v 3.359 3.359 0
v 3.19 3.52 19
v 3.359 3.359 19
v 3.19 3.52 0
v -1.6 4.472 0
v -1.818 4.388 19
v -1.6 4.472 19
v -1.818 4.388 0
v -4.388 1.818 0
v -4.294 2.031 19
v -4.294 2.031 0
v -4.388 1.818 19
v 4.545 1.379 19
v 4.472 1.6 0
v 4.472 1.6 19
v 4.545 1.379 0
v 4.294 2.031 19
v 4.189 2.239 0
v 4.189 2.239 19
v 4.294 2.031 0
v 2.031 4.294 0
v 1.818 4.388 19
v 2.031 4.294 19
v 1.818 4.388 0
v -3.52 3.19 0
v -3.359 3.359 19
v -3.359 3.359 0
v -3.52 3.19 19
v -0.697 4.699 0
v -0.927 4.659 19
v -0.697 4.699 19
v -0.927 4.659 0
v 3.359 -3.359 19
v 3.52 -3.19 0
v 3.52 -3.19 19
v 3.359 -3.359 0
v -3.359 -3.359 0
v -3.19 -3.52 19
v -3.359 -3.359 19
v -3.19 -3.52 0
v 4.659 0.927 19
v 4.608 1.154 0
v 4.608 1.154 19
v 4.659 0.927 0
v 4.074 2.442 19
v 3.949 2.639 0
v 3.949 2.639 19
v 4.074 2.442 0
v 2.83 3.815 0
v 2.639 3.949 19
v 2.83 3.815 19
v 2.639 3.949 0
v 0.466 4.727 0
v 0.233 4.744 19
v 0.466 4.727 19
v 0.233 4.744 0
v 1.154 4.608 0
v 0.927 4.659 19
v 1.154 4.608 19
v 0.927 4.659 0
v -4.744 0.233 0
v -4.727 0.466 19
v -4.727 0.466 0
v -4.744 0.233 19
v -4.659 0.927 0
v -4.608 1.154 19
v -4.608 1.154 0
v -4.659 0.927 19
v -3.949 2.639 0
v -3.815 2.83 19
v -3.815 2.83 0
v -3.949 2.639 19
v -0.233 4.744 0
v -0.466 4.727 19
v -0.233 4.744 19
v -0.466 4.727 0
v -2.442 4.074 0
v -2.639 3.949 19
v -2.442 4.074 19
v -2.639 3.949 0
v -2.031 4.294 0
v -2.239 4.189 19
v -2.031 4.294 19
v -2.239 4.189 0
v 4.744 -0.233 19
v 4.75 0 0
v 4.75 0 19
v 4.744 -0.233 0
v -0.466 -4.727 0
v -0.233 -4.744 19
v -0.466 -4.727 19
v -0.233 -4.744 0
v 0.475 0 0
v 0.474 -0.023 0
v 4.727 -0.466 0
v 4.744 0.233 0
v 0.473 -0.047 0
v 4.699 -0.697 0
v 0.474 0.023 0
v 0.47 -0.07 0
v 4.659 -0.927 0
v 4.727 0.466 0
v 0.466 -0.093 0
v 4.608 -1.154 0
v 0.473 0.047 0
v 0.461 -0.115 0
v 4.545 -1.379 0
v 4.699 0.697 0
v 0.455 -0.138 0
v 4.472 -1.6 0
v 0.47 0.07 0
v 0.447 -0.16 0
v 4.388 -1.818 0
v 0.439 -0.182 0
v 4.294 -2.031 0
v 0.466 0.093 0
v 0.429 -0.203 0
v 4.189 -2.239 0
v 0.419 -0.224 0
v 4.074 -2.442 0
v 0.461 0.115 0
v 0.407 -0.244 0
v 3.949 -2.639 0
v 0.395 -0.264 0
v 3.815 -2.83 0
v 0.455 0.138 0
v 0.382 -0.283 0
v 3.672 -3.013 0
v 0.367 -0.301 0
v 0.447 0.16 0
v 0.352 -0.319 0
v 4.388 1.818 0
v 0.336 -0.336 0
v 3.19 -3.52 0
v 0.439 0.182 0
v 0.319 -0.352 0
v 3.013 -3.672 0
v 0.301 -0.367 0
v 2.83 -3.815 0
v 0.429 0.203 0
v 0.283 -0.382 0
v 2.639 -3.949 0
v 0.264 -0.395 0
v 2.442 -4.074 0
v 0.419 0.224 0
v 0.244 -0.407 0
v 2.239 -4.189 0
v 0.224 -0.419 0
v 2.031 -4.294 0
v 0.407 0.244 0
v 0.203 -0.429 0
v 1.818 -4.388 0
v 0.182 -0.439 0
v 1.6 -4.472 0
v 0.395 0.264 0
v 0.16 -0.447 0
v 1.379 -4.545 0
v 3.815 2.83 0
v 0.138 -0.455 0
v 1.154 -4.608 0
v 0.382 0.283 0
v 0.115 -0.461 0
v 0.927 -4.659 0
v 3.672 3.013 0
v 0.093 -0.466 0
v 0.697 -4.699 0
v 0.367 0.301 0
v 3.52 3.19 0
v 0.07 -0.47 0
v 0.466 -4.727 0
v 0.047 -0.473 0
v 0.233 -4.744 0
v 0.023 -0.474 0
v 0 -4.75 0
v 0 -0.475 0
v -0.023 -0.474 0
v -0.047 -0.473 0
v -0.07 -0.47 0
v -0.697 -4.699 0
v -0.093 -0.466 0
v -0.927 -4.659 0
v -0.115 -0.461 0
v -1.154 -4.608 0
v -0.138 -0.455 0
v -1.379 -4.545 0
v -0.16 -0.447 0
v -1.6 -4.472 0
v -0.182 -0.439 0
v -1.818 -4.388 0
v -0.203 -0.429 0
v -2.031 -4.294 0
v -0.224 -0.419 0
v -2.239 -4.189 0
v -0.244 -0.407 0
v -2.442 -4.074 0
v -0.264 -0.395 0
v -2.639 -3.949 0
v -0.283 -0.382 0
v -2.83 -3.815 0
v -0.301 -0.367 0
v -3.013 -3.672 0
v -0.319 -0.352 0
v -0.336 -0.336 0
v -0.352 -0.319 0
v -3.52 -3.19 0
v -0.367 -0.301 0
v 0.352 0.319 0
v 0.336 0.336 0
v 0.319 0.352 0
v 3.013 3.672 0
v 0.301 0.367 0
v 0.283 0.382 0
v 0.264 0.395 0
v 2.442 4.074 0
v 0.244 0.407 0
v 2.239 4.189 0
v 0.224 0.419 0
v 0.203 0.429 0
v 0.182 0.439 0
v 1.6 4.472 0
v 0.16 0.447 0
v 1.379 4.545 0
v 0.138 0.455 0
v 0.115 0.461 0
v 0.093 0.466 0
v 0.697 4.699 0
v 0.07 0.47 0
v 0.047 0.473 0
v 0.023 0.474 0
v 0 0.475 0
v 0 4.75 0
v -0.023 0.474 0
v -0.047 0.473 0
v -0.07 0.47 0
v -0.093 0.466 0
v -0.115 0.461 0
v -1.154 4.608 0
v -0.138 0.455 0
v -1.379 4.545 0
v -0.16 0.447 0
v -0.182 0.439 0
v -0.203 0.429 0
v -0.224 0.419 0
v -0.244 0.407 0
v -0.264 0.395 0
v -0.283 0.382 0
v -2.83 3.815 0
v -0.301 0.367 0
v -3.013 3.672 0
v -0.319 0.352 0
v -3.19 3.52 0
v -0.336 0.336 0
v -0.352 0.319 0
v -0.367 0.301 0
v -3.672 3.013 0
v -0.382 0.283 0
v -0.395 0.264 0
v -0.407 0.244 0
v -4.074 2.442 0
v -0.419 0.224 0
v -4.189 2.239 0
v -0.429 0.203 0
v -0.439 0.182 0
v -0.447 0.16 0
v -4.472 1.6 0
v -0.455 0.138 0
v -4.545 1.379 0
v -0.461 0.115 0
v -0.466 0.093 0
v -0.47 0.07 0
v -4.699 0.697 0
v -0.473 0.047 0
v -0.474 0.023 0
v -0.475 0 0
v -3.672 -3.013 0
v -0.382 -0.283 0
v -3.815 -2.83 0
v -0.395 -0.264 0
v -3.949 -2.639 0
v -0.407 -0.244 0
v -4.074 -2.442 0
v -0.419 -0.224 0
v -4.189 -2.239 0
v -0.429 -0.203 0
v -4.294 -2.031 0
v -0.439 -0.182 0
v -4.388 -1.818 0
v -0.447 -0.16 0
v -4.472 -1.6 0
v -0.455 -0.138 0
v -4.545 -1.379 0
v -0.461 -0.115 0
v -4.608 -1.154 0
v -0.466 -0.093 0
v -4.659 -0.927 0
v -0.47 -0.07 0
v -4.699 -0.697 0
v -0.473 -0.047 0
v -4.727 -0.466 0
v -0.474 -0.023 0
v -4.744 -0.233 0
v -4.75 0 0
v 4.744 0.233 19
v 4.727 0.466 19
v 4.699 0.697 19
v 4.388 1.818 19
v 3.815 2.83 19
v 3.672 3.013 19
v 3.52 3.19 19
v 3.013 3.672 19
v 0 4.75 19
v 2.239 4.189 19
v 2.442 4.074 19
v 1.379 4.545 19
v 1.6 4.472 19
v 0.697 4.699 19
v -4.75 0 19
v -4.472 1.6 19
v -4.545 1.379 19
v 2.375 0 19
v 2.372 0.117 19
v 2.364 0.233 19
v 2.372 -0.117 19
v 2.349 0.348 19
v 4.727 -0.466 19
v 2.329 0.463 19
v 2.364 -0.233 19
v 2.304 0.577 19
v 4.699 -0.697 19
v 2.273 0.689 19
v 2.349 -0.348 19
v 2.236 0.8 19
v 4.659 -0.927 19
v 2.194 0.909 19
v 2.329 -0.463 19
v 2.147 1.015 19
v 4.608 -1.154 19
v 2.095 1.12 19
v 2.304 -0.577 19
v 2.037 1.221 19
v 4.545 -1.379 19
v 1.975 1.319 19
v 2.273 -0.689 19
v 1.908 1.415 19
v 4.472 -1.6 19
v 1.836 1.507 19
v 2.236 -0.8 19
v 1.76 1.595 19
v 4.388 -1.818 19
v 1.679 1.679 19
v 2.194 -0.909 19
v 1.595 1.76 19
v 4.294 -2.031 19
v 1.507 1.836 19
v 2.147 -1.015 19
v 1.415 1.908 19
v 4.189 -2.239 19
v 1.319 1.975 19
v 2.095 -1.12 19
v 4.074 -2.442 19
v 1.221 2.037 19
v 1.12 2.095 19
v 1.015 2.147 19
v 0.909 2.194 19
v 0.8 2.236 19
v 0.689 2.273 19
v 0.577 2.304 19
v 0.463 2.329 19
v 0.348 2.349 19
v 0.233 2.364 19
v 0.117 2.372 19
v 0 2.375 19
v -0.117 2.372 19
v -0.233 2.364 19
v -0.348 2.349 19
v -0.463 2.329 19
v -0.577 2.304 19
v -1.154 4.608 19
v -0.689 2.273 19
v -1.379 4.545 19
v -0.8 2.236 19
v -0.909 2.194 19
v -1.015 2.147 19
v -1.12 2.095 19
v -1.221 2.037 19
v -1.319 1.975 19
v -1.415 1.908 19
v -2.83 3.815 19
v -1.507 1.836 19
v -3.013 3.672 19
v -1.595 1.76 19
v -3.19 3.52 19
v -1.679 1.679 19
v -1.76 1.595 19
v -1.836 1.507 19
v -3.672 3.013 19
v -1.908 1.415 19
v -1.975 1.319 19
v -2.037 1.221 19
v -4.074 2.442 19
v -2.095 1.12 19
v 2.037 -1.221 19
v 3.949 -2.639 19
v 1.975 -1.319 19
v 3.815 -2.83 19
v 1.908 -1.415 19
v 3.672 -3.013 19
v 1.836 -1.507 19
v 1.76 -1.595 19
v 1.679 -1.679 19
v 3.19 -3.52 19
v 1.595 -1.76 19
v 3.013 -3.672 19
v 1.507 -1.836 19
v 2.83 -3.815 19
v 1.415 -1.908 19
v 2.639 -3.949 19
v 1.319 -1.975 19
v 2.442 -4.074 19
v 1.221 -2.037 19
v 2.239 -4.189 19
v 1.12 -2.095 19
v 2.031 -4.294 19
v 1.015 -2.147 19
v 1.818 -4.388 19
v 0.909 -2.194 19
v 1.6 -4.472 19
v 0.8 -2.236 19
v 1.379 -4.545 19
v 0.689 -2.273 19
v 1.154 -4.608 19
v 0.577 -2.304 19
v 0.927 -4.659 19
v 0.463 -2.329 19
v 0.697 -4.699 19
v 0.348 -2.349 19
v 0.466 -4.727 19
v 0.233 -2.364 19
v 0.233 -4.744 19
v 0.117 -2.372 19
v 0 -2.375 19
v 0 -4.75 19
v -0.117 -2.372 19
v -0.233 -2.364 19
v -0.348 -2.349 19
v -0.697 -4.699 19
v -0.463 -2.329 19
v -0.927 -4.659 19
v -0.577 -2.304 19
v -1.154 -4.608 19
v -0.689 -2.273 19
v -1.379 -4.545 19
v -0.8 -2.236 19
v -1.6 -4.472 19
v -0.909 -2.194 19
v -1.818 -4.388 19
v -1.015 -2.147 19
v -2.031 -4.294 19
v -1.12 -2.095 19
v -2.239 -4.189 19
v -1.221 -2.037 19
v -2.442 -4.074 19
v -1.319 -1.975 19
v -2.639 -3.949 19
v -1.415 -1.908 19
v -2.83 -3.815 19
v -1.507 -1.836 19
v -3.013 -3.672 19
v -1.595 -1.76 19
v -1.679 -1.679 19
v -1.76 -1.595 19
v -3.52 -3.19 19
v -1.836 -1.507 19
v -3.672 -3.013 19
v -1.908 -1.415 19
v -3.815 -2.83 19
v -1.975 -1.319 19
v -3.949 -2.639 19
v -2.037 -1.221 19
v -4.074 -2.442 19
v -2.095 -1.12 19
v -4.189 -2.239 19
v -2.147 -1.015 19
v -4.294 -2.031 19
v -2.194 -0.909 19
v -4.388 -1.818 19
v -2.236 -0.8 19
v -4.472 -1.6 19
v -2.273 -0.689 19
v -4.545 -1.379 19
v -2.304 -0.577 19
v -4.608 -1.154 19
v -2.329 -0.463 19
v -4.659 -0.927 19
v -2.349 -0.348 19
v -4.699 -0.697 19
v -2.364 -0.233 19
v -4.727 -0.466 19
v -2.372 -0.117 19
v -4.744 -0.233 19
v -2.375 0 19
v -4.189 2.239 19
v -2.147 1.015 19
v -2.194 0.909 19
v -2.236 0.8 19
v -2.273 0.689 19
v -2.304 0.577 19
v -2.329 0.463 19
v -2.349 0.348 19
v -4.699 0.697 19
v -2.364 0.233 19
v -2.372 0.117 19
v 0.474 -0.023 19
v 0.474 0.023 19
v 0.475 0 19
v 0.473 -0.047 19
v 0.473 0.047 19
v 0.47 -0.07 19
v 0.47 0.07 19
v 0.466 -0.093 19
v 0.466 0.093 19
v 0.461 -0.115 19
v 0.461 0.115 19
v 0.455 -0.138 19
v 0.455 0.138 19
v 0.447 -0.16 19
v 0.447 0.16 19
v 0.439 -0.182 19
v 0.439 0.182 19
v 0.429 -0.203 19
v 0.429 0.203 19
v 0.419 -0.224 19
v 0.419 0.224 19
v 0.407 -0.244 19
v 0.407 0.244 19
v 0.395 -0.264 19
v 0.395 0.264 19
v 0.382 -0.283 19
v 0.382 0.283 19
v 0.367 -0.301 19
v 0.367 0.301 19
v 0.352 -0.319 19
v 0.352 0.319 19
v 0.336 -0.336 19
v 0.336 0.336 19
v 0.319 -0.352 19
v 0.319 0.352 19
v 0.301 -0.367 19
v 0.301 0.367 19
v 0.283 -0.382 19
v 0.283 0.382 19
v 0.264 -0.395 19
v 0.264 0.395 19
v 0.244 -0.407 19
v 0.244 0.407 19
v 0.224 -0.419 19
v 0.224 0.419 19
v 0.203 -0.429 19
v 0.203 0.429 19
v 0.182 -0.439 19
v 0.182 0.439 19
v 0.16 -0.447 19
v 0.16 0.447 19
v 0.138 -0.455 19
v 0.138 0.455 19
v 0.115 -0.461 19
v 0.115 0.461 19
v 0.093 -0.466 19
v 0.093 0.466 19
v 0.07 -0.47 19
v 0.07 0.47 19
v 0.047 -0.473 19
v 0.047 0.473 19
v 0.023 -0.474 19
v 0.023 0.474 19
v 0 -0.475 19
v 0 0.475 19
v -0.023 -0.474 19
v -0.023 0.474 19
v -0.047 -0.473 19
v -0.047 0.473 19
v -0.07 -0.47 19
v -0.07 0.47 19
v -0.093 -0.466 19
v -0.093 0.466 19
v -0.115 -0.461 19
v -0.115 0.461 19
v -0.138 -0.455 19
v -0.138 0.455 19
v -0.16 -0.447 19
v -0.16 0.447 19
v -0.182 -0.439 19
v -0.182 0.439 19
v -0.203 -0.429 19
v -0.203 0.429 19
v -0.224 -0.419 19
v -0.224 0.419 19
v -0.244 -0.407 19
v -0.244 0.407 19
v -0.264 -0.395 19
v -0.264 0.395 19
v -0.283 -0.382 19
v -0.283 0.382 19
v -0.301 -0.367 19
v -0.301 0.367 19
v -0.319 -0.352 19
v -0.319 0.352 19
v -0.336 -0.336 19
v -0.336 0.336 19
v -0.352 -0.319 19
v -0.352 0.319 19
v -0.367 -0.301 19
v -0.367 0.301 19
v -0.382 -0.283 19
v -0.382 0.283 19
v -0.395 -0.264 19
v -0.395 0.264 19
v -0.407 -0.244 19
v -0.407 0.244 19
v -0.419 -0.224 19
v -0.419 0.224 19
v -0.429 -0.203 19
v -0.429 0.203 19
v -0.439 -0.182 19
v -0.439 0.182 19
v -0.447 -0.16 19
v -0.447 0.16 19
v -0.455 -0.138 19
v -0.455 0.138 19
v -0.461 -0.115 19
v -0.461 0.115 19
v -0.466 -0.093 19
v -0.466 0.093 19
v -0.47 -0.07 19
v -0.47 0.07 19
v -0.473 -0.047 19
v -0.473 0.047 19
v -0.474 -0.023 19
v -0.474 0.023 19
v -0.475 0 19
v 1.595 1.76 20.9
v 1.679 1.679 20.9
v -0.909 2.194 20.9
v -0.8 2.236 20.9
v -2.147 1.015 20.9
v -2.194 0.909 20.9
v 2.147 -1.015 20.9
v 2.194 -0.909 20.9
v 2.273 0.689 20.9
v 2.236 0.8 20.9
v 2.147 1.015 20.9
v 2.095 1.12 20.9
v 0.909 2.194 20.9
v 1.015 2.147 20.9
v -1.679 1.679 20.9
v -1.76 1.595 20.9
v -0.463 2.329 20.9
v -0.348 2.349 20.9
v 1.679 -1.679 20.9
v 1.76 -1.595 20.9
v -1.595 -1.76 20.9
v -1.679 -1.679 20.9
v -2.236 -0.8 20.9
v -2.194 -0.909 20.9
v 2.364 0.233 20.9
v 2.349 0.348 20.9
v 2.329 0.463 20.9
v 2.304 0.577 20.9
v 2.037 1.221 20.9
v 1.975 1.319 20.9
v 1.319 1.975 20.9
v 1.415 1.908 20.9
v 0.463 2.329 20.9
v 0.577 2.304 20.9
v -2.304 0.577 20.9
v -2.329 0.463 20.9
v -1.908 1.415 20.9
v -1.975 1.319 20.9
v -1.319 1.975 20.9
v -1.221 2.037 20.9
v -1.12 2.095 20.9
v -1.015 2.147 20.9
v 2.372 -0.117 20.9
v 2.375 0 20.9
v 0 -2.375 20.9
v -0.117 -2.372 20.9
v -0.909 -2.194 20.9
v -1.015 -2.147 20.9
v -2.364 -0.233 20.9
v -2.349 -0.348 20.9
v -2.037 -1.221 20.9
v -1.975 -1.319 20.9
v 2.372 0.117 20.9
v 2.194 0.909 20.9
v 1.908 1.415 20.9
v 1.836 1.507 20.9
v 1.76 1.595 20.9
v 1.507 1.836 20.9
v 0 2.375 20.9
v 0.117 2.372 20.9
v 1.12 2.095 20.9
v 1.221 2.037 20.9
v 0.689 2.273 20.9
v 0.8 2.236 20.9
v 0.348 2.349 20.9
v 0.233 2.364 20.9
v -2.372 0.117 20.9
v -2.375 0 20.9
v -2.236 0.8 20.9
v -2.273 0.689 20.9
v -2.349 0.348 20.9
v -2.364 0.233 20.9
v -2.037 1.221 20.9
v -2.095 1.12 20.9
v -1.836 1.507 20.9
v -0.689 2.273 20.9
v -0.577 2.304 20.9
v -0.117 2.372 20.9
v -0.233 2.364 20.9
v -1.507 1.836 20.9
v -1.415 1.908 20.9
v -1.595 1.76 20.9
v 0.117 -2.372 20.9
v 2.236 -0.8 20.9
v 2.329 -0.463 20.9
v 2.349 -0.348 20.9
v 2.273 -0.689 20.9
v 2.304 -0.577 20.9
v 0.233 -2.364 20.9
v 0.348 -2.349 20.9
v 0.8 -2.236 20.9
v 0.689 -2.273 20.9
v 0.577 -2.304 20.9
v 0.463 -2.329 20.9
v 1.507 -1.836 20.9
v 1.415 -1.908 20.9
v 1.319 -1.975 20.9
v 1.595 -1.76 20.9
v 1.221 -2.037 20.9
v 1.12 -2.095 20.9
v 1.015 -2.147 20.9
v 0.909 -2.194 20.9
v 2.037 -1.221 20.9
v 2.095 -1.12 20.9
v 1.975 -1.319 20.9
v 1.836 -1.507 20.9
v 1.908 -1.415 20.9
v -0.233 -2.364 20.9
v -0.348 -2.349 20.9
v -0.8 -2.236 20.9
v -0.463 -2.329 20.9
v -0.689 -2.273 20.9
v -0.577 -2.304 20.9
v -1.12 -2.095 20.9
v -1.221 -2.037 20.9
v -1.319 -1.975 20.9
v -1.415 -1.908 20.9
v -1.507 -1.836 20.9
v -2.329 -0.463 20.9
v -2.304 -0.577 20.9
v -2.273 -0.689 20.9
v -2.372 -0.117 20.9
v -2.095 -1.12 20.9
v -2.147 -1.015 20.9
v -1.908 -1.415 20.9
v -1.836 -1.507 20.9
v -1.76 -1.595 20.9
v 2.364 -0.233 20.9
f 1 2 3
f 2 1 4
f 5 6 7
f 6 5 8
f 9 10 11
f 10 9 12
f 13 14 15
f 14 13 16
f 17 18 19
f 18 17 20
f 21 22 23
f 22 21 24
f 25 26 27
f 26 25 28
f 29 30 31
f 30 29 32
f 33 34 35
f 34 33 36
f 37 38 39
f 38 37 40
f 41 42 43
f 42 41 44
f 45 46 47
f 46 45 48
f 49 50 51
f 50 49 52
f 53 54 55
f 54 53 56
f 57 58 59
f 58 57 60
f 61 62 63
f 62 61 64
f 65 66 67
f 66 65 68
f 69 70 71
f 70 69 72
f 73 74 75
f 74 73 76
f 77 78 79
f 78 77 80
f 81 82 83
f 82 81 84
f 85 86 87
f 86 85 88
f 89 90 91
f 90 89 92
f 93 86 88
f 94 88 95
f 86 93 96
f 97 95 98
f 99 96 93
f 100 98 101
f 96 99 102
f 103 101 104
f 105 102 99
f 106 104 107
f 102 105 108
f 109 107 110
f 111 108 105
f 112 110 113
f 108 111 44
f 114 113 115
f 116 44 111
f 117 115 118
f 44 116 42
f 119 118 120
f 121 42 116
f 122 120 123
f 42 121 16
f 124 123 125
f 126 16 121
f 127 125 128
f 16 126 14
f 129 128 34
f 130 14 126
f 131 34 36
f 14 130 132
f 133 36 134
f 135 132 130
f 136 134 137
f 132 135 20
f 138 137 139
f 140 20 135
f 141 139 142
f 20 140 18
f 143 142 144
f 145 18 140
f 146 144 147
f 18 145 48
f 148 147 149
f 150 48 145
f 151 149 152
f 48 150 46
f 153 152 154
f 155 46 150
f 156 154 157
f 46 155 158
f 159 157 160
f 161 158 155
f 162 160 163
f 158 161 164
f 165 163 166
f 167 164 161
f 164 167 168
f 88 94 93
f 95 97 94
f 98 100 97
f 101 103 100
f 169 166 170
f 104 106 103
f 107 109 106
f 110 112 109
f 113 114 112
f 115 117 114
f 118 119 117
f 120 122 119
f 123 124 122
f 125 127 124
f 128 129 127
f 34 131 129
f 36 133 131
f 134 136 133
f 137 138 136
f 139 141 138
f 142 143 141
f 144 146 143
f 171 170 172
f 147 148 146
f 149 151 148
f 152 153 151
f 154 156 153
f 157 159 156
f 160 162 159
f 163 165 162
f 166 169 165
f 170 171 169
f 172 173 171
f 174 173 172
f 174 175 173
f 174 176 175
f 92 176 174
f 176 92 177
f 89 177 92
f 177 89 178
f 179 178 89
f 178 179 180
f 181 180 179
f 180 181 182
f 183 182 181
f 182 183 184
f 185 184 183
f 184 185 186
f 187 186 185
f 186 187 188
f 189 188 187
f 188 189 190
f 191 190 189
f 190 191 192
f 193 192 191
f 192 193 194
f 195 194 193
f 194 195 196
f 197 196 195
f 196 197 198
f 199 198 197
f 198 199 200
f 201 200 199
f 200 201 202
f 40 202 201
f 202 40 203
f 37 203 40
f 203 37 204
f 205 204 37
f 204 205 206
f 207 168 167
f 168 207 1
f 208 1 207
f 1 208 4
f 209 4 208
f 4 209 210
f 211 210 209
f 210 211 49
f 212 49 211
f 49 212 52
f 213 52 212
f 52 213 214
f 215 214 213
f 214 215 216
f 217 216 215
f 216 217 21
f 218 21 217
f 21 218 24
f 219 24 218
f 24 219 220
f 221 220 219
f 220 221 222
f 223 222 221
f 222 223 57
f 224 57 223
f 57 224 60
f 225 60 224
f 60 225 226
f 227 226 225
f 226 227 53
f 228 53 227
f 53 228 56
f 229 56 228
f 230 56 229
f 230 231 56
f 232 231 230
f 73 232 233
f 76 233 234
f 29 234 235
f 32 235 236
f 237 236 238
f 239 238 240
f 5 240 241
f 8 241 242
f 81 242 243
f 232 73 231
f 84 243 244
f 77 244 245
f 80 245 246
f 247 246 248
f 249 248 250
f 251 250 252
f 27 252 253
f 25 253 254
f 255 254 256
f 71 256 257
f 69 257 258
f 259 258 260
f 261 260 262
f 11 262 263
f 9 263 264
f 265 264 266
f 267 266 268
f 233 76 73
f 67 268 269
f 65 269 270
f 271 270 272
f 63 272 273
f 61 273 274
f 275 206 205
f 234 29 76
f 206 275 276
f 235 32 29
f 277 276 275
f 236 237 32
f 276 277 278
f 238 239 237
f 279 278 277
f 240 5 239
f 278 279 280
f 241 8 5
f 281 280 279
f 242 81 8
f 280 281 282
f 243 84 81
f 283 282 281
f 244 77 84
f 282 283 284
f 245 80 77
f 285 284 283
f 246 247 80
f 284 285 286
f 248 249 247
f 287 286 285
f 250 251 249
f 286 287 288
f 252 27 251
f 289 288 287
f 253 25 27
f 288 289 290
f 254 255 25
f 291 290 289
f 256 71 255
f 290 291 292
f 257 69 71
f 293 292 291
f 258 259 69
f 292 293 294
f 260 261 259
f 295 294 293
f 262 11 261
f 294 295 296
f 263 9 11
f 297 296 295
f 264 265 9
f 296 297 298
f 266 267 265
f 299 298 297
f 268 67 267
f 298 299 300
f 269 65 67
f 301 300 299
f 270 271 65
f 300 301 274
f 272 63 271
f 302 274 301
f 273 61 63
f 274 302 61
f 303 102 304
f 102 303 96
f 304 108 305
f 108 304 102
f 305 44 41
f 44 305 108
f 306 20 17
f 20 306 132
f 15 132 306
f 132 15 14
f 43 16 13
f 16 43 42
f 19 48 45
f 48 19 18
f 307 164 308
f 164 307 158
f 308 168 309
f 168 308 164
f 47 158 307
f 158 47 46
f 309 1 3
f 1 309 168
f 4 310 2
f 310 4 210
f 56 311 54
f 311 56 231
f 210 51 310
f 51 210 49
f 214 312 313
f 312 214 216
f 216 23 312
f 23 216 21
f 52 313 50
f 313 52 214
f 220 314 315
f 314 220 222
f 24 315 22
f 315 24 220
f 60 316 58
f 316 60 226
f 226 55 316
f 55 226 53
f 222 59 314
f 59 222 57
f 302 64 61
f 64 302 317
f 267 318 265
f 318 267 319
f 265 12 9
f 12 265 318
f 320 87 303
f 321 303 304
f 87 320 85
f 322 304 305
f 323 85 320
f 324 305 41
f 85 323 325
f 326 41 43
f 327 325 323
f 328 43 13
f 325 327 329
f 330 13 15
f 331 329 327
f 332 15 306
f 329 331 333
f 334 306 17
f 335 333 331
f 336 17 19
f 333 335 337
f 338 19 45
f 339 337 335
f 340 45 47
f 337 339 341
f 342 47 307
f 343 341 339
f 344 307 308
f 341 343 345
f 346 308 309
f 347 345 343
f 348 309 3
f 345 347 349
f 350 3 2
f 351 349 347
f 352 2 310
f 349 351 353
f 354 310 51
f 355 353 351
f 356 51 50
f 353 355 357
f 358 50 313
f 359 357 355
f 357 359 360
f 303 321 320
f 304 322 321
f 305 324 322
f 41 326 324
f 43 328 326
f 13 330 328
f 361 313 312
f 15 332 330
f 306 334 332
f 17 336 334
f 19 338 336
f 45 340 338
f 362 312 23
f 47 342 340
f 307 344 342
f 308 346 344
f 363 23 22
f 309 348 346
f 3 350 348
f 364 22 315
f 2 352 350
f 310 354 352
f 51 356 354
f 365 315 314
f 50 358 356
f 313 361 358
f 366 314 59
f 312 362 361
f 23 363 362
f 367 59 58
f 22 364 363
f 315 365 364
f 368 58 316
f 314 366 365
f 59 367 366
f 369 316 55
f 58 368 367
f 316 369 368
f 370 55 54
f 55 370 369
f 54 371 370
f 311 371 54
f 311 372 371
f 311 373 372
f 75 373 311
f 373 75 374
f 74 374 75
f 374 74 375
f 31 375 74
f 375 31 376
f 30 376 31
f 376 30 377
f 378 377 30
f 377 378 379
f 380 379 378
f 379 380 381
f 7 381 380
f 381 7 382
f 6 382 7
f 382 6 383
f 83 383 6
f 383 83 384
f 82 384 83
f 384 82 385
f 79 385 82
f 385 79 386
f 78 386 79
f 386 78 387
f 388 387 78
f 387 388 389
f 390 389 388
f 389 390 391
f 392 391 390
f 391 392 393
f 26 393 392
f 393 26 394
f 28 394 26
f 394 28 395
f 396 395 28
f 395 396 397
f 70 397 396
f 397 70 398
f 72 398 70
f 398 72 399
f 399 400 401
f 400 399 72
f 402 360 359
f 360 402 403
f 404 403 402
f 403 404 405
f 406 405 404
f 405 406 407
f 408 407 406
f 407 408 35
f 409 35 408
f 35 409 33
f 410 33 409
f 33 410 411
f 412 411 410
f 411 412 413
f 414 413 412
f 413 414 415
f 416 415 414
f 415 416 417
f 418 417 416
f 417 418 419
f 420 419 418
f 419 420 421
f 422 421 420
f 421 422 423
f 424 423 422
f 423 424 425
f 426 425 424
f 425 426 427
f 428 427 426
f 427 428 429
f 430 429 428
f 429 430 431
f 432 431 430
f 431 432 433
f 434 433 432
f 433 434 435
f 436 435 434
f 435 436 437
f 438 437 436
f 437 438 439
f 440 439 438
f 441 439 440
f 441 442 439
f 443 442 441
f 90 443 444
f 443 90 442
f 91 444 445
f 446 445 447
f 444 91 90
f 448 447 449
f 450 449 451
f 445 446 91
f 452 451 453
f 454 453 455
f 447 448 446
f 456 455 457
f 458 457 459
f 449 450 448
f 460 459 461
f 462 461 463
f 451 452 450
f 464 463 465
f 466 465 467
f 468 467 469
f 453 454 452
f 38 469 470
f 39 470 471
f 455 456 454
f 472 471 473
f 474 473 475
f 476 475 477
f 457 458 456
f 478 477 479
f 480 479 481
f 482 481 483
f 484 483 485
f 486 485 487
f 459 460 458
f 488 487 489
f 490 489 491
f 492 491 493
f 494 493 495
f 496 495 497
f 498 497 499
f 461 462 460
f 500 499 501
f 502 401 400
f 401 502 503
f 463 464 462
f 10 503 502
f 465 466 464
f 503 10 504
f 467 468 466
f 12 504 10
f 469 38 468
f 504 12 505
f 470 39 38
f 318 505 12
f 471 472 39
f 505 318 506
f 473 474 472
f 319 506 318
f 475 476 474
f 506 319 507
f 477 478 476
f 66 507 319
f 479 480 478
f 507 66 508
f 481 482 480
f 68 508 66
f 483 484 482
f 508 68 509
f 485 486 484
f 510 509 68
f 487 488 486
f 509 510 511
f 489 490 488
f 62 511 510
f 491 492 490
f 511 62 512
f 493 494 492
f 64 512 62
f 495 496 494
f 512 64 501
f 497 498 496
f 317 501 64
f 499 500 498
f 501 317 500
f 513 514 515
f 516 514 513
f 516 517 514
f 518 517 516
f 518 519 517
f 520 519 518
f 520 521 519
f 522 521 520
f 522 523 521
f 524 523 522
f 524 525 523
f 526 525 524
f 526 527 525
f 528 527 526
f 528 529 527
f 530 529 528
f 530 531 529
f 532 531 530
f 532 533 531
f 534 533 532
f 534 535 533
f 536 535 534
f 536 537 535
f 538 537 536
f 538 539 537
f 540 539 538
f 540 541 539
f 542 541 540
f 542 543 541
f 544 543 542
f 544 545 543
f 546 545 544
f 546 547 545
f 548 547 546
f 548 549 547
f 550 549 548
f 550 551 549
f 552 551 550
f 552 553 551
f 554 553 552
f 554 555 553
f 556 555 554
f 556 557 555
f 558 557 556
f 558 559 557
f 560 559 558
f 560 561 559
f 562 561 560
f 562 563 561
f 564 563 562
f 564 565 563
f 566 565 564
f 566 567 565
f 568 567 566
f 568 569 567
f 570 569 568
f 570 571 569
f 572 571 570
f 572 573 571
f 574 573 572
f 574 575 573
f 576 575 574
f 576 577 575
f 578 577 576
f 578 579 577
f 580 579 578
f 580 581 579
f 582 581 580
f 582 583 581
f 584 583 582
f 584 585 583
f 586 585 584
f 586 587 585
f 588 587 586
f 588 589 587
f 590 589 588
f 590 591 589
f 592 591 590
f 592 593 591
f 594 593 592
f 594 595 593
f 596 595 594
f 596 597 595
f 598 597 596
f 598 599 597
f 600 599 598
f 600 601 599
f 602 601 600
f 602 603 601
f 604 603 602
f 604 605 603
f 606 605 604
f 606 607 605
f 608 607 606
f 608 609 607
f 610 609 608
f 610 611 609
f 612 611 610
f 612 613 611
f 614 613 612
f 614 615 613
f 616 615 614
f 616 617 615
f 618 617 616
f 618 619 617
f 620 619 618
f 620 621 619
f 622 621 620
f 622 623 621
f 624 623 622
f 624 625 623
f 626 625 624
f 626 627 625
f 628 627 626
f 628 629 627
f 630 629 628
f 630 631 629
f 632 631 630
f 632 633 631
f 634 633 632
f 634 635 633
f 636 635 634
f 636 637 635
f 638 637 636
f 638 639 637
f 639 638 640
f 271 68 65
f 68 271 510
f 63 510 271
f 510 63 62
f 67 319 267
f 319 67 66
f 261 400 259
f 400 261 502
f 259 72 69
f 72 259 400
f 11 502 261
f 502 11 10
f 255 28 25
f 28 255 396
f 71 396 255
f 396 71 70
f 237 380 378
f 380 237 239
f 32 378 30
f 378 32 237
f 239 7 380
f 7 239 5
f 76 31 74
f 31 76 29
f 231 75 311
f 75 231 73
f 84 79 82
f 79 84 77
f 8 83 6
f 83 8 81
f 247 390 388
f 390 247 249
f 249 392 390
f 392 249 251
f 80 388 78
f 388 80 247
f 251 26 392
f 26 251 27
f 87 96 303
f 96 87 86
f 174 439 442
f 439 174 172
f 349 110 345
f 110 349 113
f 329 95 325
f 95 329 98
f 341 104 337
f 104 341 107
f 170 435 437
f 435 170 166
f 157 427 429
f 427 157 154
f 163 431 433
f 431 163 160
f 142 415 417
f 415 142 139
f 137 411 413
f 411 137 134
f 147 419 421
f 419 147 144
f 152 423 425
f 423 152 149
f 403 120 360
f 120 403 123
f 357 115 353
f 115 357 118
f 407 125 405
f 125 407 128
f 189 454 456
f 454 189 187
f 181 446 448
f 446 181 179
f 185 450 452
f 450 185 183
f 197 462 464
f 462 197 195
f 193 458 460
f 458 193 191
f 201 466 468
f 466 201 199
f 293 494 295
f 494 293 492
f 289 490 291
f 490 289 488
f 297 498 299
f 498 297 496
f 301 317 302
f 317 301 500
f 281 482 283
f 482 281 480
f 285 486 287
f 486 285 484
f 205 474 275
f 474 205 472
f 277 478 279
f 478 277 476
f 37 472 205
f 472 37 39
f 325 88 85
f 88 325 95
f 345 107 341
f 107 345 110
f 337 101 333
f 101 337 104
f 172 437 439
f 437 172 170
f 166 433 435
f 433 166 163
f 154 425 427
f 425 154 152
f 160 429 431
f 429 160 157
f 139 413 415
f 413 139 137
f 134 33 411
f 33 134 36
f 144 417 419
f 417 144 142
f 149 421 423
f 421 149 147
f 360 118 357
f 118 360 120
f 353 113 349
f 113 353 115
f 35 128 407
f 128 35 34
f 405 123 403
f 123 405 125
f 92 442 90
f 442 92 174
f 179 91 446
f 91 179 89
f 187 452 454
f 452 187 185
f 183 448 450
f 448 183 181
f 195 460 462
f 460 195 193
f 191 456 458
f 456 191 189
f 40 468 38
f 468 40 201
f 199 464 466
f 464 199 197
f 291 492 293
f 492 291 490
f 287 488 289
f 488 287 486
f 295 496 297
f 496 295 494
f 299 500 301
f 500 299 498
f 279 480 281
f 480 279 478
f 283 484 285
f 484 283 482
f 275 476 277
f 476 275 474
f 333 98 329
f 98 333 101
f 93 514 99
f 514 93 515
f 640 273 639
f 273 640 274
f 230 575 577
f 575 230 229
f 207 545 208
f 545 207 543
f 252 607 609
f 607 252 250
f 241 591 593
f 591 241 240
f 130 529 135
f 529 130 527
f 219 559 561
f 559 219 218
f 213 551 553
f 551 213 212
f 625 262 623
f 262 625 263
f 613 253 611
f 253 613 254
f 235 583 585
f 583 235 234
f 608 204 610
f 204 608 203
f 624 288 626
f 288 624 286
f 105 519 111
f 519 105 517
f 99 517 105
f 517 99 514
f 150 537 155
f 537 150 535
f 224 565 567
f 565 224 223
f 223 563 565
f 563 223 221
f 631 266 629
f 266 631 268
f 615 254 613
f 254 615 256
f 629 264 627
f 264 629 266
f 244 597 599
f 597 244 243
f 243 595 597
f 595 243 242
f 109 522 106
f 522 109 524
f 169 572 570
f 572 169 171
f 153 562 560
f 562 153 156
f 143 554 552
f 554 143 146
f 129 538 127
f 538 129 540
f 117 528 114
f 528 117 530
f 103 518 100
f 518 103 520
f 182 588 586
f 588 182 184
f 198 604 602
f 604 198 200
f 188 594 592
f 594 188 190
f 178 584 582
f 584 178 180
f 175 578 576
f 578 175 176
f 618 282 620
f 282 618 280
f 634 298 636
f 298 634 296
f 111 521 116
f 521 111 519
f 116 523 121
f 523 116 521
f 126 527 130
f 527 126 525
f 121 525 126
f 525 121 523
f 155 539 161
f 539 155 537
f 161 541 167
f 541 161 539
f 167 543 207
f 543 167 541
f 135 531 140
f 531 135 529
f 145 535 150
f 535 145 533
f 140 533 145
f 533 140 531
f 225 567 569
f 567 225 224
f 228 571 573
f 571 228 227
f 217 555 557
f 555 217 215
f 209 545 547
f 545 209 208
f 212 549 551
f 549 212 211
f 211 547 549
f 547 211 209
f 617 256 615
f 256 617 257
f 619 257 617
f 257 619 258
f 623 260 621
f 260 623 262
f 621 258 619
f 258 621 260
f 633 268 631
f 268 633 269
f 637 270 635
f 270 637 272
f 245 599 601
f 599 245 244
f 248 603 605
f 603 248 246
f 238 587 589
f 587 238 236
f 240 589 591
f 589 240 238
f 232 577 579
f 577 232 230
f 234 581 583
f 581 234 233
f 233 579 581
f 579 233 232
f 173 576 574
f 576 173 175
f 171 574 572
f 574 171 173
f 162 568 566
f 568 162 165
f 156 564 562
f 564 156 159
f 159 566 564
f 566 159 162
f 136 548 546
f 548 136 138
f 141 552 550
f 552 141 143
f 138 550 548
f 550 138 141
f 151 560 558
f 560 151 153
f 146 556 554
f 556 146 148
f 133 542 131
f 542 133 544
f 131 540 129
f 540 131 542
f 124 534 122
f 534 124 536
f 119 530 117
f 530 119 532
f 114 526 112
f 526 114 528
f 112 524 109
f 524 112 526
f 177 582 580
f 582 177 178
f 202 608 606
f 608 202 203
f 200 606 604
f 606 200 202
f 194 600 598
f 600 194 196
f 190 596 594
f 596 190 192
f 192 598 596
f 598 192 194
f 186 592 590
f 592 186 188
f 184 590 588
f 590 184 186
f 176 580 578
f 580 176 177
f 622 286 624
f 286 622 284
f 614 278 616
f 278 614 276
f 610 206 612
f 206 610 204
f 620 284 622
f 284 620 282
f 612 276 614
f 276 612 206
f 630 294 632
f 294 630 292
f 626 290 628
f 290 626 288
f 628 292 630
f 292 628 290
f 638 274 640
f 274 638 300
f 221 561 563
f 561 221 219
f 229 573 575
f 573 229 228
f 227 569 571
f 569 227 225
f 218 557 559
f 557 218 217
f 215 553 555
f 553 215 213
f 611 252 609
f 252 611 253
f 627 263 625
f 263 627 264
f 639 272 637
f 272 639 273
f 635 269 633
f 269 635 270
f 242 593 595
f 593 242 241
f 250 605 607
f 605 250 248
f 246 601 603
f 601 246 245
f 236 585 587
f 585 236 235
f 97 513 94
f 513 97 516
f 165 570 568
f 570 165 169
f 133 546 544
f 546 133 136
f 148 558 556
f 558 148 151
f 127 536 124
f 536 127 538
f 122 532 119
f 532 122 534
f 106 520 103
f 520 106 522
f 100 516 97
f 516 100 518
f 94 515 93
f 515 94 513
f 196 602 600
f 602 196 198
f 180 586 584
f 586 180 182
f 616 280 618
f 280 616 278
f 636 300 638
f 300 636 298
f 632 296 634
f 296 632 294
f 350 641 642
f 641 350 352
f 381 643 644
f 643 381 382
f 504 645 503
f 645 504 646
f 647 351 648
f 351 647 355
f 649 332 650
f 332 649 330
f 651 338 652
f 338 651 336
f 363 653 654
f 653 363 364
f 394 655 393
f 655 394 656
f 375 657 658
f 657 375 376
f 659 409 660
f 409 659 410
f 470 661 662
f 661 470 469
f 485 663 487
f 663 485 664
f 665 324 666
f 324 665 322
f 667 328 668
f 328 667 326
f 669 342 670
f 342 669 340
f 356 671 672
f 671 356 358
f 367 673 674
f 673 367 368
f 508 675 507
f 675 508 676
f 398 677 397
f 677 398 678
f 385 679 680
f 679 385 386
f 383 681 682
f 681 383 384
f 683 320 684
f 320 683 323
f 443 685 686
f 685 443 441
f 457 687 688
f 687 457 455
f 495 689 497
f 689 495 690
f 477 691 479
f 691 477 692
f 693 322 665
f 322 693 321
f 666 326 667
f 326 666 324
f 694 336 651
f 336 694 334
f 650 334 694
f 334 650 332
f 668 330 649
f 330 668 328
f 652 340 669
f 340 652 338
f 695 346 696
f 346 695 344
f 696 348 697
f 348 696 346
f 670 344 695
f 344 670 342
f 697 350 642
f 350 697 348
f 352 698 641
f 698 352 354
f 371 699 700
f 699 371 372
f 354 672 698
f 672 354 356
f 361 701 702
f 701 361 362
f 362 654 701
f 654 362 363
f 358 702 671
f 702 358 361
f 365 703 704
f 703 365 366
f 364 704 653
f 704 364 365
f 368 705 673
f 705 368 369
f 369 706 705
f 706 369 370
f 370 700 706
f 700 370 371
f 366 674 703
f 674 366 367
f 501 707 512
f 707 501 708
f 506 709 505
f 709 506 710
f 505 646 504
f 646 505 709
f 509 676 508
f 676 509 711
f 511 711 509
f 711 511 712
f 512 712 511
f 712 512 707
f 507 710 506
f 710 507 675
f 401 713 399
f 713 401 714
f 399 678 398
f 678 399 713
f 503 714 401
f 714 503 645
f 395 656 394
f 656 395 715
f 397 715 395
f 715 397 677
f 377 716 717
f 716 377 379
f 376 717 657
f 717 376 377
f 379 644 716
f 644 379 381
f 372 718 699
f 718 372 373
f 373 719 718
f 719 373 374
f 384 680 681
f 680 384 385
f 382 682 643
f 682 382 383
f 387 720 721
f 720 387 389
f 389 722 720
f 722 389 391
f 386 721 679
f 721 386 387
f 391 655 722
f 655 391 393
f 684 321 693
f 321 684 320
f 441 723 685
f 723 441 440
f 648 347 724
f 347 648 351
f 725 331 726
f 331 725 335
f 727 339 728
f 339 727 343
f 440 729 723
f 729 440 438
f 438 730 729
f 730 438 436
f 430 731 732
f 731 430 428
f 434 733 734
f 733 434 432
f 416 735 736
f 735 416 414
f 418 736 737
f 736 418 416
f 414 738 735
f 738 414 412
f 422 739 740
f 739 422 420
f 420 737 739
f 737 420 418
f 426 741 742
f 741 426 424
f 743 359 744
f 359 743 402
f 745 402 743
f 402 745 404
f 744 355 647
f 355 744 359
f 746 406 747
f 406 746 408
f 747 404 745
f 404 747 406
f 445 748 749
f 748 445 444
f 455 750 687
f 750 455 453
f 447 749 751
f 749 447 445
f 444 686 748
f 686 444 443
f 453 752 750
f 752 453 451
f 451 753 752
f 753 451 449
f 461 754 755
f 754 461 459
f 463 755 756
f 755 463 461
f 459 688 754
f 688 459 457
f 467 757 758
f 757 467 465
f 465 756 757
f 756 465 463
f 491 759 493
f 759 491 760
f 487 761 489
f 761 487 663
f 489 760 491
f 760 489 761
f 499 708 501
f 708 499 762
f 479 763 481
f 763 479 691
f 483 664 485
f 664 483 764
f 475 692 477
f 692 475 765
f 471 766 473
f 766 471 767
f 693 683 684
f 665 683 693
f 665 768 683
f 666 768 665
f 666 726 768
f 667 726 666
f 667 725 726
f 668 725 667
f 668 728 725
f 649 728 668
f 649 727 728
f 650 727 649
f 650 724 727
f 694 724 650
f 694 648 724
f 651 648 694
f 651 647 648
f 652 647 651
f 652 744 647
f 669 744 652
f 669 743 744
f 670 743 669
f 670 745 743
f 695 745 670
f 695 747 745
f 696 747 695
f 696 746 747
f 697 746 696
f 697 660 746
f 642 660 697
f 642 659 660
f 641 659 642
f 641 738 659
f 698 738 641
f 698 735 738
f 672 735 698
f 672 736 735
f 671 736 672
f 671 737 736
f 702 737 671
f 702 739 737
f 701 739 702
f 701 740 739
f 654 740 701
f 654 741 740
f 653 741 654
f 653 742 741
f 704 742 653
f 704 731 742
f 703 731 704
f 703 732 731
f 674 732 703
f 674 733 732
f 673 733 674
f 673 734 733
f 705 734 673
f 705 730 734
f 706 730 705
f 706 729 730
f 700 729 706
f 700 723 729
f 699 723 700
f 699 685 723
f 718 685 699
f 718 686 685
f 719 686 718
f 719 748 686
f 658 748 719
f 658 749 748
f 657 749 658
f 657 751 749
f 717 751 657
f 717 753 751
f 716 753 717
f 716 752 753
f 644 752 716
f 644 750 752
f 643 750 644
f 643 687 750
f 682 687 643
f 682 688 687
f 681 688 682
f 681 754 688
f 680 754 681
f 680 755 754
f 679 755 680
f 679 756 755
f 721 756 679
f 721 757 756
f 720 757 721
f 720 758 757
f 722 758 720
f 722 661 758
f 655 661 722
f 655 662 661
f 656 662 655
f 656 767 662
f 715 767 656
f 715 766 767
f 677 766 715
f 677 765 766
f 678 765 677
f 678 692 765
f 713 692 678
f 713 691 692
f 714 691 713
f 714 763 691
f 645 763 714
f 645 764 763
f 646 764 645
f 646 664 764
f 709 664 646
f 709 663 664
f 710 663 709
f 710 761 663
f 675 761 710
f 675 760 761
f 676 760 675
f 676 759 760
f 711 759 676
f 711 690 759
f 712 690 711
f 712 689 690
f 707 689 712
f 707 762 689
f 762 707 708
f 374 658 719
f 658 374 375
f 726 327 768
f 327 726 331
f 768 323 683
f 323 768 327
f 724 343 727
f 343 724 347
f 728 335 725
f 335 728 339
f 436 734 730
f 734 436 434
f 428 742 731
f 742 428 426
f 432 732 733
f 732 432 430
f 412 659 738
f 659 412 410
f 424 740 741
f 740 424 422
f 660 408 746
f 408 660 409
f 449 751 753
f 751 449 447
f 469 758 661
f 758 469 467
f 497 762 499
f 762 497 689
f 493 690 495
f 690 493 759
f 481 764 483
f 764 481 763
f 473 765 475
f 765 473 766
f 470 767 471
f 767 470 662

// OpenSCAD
// Generated by SolidPython 1.1.3 on 2023-04-08 02:27:49
$fn =128;


union() {
	difference() {
		cylinder(h = 19, r = 4.7500000000);
		cylinder(h = 19, r = 0.4750000000);
	}
	translate(v = [0, 0, 19]) {
		cylinder(h = 1.9000000000, r = 2.3750000000);
	}
}
